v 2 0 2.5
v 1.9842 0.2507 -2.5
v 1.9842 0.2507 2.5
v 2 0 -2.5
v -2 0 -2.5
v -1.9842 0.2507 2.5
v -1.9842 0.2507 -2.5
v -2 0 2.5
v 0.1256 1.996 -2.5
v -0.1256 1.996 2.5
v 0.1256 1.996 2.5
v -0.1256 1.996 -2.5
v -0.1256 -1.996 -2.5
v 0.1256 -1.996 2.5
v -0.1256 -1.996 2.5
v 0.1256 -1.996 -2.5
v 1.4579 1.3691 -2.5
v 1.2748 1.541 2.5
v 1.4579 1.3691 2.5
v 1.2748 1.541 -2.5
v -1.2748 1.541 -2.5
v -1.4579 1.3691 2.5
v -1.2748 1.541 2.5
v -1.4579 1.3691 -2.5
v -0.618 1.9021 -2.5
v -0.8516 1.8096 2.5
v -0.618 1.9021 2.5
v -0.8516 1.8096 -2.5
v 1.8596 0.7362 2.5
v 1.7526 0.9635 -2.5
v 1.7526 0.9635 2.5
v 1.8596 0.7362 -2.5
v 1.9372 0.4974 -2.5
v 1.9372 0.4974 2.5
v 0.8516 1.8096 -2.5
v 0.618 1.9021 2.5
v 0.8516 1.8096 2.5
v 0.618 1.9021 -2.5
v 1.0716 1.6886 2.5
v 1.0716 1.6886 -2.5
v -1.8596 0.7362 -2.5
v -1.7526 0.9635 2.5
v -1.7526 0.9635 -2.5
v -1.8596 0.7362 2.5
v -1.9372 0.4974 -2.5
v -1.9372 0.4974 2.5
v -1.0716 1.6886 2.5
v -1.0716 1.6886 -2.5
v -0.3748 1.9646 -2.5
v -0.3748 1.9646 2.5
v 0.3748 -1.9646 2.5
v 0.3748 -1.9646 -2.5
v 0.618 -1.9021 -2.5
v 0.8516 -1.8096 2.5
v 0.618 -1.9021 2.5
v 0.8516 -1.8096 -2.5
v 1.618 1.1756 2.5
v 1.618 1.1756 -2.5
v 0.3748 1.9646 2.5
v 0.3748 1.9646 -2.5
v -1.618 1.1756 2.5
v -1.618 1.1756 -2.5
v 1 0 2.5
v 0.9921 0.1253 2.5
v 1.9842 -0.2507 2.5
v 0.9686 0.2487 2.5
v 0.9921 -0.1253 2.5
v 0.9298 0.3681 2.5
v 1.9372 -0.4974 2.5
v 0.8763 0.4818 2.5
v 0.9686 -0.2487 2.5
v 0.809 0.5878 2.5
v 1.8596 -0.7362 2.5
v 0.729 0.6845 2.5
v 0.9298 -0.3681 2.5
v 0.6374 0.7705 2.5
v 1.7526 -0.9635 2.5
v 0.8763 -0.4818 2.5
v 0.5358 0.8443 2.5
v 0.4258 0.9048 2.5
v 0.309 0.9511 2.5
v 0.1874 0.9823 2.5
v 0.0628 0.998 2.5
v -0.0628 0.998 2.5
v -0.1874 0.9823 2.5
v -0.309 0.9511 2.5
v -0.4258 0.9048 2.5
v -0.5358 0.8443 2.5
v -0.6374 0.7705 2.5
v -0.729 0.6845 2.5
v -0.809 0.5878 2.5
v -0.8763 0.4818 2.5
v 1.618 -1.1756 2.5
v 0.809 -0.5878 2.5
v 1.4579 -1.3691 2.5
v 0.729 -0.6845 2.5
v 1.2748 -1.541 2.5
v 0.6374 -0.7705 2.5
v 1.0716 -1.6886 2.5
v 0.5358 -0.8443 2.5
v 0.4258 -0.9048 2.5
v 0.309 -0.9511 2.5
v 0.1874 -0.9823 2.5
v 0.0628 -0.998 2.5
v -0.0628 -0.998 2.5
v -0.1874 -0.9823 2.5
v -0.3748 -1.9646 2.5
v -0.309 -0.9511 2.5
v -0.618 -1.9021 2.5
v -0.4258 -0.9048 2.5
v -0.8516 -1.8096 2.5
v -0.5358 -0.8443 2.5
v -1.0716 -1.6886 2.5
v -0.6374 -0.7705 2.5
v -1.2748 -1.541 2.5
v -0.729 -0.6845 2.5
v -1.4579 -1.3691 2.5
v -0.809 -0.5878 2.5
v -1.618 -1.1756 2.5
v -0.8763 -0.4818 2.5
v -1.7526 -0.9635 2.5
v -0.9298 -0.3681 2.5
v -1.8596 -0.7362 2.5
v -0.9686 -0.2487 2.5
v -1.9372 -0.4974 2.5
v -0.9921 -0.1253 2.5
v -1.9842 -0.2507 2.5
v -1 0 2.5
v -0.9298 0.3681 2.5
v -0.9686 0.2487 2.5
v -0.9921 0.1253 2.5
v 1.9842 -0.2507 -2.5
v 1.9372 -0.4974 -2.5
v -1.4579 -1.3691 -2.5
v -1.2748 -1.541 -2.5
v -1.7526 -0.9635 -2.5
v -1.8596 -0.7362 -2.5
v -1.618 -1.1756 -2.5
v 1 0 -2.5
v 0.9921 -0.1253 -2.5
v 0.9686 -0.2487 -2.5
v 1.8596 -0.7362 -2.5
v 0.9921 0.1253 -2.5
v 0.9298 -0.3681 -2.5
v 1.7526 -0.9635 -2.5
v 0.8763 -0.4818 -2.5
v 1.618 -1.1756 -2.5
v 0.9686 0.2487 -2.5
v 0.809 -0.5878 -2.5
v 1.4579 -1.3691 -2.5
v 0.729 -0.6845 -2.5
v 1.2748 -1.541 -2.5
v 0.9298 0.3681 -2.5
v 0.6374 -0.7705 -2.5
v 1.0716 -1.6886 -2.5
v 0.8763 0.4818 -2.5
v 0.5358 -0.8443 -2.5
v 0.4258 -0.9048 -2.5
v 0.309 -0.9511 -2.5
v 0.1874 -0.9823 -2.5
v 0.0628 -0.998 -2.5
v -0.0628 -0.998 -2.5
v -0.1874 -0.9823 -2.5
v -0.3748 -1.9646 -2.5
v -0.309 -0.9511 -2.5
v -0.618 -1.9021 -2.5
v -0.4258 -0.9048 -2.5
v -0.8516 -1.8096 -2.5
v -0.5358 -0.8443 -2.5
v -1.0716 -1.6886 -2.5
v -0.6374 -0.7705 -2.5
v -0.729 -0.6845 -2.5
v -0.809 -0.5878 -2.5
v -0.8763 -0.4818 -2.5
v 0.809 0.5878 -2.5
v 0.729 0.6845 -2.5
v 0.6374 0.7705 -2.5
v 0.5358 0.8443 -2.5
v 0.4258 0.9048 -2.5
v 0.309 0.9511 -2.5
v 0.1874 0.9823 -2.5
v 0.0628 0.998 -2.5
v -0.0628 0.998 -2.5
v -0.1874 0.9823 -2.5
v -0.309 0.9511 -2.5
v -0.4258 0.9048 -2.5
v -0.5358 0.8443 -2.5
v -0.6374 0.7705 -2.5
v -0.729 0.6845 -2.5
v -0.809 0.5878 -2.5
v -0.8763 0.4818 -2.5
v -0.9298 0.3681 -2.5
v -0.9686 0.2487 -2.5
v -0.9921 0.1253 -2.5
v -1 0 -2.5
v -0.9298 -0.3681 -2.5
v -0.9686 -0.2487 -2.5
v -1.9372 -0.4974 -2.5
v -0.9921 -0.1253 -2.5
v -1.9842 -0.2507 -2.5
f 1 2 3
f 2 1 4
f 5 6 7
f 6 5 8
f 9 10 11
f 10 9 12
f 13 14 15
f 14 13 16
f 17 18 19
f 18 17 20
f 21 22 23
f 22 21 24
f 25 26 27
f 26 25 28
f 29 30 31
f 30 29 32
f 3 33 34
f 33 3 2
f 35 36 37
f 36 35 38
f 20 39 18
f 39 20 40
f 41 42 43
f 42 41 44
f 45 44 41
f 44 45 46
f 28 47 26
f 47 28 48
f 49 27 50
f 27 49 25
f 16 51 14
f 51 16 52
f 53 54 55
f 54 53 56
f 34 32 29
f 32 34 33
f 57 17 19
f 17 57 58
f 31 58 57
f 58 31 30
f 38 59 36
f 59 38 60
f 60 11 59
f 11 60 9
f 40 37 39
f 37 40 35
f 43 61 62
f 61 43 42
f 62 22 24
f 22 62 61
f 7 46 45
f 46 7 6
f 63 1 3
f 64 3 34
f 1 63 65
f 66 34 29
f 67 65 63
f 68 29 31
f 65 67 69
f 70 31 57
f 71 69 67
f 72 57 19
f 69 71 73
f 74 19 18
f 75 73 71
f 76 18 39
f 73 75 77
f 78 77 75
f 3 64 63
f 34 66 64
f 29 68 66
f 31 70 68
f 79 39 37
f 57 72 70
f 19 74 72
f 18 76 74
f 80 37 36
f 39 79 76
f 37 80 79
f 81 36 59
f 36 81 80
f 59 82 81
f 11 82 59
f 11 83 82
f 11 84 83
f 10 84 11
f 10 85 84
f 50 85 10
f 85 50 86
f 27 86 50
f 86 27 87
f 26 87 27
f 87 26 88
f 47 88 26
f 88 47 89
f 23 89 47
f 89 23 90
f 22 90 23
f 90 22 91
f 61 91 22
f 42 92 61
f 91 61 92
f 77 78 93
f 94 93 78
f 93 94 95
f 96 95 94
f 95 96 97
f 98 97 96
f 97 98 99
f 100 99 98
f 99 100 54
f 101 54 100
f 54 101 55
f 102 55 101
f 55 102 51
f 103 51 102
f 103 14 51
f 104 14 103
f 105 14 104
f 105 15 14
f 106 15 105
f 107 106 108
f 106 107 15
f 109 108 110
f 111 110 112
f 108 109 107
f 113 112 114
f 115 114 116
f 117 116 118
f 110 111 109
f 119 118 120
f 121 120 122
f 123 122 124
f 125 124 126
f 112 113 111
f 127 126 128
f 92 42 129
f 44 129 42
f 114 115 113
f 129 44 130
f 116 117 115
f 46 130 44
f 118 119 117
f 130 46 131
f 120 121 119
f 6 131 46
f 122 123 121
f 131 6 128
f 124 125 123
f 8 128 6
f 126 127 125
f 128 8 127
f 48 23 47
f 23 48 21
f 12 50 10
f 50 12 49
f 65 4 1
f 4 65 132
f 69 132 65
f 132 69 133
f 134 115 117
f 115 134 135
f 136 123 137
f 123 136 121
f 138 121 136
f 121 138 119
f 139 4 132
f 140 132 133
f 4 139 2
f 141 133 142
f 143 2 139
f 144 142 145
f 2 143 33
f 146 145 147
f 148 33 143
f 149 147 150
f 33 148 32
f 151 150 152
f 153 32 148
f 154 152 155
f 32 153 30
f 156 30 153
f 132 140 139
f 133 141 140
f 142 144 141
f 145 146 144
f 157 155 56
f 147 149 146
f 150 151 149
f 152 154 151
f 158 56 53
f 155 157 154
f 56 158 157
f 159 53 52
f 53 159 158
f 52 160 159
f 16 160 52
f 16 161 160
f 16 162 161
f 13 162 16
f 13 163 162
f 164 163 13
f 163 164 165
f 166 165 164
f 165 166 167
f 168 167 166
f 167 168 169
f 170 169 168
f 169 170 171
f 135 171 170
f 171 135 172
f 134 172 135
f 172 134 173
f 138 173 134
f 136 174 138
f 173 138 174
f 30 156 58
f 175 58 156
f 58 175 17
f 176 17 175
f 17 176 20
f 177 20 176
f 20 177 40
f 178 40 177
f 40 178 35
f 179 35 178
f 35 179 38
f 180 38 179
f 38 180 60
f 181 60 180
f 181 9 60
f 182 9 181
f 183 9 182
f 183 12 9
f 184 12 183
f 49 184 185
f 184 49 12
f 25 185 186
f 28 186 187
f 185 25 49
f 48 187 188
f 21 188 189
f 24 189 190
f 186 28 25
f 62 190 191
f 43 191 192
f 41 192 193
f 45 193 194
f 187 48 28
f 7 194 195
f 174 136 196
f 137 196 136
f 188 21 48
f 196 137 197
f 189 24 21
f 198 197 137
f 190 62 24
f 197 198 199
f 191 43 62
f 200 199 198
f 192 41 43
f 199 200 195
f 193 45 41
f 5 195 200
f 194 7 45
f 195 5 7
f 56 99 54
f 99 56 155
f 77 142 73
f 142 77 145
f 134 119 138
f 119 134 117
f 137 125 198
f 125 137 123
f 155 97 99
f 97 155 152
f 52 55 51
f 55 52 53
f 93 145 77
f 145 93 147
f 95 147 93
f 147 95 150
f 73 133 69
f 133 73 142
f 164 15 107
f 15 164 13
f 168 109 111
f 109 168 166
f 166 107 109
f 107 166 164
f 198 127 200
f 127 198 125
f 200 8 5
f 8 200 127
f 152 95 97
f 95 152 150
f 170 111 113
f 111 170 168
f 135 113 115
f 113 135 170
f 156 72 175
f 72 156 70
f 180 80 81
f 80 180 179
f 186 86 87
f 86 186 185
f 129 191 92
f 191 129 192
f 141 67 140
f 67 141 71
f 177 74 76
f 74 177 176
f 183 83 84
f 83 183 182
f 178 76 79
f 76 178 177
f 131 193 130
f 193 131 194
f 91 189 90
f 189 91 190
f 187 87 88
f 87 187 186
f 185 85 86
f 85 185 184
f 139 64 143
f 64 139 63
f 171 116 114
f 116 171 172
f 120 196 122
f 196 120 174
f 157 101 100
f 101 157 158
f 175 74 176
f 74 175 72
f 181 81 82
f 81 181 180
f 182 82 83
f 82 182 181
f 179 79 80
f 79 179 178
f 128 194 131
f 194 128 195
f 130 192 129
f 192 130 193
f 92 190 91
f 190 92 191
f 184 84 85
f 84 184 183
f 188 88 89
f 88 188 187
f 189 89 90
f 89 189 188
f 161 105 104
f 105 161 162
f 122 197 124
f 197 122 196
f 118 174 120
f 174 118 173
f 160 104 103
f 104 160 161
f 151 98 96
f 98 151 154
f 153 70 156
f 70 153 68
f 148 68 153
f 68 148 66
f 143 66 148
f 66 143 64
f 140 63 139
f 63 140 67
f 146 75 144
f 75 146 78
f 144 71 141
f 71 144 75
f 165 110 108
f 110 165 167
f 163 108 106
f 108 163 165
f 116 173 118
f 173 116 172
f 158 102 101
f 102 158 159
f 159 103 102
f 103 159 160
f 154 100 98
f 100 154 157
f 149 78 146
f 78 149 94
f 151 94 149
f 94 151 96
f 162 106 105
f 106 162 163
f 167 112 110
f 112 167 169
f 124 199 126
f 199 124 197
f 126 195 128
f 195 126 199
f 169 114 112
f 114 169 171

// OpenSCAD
$fn = 50;


difference() {
	union() {
		translate(v = [0, 0, -2.5000000000]) {
			cylinder(h = 5, r = 2.0000000000);
		}
	}
	union() {
		translate(v = [0, 0, -100.0000000000]) {
			cylinder(h = 200, r = 1.0000000000);
		}
	}
}
